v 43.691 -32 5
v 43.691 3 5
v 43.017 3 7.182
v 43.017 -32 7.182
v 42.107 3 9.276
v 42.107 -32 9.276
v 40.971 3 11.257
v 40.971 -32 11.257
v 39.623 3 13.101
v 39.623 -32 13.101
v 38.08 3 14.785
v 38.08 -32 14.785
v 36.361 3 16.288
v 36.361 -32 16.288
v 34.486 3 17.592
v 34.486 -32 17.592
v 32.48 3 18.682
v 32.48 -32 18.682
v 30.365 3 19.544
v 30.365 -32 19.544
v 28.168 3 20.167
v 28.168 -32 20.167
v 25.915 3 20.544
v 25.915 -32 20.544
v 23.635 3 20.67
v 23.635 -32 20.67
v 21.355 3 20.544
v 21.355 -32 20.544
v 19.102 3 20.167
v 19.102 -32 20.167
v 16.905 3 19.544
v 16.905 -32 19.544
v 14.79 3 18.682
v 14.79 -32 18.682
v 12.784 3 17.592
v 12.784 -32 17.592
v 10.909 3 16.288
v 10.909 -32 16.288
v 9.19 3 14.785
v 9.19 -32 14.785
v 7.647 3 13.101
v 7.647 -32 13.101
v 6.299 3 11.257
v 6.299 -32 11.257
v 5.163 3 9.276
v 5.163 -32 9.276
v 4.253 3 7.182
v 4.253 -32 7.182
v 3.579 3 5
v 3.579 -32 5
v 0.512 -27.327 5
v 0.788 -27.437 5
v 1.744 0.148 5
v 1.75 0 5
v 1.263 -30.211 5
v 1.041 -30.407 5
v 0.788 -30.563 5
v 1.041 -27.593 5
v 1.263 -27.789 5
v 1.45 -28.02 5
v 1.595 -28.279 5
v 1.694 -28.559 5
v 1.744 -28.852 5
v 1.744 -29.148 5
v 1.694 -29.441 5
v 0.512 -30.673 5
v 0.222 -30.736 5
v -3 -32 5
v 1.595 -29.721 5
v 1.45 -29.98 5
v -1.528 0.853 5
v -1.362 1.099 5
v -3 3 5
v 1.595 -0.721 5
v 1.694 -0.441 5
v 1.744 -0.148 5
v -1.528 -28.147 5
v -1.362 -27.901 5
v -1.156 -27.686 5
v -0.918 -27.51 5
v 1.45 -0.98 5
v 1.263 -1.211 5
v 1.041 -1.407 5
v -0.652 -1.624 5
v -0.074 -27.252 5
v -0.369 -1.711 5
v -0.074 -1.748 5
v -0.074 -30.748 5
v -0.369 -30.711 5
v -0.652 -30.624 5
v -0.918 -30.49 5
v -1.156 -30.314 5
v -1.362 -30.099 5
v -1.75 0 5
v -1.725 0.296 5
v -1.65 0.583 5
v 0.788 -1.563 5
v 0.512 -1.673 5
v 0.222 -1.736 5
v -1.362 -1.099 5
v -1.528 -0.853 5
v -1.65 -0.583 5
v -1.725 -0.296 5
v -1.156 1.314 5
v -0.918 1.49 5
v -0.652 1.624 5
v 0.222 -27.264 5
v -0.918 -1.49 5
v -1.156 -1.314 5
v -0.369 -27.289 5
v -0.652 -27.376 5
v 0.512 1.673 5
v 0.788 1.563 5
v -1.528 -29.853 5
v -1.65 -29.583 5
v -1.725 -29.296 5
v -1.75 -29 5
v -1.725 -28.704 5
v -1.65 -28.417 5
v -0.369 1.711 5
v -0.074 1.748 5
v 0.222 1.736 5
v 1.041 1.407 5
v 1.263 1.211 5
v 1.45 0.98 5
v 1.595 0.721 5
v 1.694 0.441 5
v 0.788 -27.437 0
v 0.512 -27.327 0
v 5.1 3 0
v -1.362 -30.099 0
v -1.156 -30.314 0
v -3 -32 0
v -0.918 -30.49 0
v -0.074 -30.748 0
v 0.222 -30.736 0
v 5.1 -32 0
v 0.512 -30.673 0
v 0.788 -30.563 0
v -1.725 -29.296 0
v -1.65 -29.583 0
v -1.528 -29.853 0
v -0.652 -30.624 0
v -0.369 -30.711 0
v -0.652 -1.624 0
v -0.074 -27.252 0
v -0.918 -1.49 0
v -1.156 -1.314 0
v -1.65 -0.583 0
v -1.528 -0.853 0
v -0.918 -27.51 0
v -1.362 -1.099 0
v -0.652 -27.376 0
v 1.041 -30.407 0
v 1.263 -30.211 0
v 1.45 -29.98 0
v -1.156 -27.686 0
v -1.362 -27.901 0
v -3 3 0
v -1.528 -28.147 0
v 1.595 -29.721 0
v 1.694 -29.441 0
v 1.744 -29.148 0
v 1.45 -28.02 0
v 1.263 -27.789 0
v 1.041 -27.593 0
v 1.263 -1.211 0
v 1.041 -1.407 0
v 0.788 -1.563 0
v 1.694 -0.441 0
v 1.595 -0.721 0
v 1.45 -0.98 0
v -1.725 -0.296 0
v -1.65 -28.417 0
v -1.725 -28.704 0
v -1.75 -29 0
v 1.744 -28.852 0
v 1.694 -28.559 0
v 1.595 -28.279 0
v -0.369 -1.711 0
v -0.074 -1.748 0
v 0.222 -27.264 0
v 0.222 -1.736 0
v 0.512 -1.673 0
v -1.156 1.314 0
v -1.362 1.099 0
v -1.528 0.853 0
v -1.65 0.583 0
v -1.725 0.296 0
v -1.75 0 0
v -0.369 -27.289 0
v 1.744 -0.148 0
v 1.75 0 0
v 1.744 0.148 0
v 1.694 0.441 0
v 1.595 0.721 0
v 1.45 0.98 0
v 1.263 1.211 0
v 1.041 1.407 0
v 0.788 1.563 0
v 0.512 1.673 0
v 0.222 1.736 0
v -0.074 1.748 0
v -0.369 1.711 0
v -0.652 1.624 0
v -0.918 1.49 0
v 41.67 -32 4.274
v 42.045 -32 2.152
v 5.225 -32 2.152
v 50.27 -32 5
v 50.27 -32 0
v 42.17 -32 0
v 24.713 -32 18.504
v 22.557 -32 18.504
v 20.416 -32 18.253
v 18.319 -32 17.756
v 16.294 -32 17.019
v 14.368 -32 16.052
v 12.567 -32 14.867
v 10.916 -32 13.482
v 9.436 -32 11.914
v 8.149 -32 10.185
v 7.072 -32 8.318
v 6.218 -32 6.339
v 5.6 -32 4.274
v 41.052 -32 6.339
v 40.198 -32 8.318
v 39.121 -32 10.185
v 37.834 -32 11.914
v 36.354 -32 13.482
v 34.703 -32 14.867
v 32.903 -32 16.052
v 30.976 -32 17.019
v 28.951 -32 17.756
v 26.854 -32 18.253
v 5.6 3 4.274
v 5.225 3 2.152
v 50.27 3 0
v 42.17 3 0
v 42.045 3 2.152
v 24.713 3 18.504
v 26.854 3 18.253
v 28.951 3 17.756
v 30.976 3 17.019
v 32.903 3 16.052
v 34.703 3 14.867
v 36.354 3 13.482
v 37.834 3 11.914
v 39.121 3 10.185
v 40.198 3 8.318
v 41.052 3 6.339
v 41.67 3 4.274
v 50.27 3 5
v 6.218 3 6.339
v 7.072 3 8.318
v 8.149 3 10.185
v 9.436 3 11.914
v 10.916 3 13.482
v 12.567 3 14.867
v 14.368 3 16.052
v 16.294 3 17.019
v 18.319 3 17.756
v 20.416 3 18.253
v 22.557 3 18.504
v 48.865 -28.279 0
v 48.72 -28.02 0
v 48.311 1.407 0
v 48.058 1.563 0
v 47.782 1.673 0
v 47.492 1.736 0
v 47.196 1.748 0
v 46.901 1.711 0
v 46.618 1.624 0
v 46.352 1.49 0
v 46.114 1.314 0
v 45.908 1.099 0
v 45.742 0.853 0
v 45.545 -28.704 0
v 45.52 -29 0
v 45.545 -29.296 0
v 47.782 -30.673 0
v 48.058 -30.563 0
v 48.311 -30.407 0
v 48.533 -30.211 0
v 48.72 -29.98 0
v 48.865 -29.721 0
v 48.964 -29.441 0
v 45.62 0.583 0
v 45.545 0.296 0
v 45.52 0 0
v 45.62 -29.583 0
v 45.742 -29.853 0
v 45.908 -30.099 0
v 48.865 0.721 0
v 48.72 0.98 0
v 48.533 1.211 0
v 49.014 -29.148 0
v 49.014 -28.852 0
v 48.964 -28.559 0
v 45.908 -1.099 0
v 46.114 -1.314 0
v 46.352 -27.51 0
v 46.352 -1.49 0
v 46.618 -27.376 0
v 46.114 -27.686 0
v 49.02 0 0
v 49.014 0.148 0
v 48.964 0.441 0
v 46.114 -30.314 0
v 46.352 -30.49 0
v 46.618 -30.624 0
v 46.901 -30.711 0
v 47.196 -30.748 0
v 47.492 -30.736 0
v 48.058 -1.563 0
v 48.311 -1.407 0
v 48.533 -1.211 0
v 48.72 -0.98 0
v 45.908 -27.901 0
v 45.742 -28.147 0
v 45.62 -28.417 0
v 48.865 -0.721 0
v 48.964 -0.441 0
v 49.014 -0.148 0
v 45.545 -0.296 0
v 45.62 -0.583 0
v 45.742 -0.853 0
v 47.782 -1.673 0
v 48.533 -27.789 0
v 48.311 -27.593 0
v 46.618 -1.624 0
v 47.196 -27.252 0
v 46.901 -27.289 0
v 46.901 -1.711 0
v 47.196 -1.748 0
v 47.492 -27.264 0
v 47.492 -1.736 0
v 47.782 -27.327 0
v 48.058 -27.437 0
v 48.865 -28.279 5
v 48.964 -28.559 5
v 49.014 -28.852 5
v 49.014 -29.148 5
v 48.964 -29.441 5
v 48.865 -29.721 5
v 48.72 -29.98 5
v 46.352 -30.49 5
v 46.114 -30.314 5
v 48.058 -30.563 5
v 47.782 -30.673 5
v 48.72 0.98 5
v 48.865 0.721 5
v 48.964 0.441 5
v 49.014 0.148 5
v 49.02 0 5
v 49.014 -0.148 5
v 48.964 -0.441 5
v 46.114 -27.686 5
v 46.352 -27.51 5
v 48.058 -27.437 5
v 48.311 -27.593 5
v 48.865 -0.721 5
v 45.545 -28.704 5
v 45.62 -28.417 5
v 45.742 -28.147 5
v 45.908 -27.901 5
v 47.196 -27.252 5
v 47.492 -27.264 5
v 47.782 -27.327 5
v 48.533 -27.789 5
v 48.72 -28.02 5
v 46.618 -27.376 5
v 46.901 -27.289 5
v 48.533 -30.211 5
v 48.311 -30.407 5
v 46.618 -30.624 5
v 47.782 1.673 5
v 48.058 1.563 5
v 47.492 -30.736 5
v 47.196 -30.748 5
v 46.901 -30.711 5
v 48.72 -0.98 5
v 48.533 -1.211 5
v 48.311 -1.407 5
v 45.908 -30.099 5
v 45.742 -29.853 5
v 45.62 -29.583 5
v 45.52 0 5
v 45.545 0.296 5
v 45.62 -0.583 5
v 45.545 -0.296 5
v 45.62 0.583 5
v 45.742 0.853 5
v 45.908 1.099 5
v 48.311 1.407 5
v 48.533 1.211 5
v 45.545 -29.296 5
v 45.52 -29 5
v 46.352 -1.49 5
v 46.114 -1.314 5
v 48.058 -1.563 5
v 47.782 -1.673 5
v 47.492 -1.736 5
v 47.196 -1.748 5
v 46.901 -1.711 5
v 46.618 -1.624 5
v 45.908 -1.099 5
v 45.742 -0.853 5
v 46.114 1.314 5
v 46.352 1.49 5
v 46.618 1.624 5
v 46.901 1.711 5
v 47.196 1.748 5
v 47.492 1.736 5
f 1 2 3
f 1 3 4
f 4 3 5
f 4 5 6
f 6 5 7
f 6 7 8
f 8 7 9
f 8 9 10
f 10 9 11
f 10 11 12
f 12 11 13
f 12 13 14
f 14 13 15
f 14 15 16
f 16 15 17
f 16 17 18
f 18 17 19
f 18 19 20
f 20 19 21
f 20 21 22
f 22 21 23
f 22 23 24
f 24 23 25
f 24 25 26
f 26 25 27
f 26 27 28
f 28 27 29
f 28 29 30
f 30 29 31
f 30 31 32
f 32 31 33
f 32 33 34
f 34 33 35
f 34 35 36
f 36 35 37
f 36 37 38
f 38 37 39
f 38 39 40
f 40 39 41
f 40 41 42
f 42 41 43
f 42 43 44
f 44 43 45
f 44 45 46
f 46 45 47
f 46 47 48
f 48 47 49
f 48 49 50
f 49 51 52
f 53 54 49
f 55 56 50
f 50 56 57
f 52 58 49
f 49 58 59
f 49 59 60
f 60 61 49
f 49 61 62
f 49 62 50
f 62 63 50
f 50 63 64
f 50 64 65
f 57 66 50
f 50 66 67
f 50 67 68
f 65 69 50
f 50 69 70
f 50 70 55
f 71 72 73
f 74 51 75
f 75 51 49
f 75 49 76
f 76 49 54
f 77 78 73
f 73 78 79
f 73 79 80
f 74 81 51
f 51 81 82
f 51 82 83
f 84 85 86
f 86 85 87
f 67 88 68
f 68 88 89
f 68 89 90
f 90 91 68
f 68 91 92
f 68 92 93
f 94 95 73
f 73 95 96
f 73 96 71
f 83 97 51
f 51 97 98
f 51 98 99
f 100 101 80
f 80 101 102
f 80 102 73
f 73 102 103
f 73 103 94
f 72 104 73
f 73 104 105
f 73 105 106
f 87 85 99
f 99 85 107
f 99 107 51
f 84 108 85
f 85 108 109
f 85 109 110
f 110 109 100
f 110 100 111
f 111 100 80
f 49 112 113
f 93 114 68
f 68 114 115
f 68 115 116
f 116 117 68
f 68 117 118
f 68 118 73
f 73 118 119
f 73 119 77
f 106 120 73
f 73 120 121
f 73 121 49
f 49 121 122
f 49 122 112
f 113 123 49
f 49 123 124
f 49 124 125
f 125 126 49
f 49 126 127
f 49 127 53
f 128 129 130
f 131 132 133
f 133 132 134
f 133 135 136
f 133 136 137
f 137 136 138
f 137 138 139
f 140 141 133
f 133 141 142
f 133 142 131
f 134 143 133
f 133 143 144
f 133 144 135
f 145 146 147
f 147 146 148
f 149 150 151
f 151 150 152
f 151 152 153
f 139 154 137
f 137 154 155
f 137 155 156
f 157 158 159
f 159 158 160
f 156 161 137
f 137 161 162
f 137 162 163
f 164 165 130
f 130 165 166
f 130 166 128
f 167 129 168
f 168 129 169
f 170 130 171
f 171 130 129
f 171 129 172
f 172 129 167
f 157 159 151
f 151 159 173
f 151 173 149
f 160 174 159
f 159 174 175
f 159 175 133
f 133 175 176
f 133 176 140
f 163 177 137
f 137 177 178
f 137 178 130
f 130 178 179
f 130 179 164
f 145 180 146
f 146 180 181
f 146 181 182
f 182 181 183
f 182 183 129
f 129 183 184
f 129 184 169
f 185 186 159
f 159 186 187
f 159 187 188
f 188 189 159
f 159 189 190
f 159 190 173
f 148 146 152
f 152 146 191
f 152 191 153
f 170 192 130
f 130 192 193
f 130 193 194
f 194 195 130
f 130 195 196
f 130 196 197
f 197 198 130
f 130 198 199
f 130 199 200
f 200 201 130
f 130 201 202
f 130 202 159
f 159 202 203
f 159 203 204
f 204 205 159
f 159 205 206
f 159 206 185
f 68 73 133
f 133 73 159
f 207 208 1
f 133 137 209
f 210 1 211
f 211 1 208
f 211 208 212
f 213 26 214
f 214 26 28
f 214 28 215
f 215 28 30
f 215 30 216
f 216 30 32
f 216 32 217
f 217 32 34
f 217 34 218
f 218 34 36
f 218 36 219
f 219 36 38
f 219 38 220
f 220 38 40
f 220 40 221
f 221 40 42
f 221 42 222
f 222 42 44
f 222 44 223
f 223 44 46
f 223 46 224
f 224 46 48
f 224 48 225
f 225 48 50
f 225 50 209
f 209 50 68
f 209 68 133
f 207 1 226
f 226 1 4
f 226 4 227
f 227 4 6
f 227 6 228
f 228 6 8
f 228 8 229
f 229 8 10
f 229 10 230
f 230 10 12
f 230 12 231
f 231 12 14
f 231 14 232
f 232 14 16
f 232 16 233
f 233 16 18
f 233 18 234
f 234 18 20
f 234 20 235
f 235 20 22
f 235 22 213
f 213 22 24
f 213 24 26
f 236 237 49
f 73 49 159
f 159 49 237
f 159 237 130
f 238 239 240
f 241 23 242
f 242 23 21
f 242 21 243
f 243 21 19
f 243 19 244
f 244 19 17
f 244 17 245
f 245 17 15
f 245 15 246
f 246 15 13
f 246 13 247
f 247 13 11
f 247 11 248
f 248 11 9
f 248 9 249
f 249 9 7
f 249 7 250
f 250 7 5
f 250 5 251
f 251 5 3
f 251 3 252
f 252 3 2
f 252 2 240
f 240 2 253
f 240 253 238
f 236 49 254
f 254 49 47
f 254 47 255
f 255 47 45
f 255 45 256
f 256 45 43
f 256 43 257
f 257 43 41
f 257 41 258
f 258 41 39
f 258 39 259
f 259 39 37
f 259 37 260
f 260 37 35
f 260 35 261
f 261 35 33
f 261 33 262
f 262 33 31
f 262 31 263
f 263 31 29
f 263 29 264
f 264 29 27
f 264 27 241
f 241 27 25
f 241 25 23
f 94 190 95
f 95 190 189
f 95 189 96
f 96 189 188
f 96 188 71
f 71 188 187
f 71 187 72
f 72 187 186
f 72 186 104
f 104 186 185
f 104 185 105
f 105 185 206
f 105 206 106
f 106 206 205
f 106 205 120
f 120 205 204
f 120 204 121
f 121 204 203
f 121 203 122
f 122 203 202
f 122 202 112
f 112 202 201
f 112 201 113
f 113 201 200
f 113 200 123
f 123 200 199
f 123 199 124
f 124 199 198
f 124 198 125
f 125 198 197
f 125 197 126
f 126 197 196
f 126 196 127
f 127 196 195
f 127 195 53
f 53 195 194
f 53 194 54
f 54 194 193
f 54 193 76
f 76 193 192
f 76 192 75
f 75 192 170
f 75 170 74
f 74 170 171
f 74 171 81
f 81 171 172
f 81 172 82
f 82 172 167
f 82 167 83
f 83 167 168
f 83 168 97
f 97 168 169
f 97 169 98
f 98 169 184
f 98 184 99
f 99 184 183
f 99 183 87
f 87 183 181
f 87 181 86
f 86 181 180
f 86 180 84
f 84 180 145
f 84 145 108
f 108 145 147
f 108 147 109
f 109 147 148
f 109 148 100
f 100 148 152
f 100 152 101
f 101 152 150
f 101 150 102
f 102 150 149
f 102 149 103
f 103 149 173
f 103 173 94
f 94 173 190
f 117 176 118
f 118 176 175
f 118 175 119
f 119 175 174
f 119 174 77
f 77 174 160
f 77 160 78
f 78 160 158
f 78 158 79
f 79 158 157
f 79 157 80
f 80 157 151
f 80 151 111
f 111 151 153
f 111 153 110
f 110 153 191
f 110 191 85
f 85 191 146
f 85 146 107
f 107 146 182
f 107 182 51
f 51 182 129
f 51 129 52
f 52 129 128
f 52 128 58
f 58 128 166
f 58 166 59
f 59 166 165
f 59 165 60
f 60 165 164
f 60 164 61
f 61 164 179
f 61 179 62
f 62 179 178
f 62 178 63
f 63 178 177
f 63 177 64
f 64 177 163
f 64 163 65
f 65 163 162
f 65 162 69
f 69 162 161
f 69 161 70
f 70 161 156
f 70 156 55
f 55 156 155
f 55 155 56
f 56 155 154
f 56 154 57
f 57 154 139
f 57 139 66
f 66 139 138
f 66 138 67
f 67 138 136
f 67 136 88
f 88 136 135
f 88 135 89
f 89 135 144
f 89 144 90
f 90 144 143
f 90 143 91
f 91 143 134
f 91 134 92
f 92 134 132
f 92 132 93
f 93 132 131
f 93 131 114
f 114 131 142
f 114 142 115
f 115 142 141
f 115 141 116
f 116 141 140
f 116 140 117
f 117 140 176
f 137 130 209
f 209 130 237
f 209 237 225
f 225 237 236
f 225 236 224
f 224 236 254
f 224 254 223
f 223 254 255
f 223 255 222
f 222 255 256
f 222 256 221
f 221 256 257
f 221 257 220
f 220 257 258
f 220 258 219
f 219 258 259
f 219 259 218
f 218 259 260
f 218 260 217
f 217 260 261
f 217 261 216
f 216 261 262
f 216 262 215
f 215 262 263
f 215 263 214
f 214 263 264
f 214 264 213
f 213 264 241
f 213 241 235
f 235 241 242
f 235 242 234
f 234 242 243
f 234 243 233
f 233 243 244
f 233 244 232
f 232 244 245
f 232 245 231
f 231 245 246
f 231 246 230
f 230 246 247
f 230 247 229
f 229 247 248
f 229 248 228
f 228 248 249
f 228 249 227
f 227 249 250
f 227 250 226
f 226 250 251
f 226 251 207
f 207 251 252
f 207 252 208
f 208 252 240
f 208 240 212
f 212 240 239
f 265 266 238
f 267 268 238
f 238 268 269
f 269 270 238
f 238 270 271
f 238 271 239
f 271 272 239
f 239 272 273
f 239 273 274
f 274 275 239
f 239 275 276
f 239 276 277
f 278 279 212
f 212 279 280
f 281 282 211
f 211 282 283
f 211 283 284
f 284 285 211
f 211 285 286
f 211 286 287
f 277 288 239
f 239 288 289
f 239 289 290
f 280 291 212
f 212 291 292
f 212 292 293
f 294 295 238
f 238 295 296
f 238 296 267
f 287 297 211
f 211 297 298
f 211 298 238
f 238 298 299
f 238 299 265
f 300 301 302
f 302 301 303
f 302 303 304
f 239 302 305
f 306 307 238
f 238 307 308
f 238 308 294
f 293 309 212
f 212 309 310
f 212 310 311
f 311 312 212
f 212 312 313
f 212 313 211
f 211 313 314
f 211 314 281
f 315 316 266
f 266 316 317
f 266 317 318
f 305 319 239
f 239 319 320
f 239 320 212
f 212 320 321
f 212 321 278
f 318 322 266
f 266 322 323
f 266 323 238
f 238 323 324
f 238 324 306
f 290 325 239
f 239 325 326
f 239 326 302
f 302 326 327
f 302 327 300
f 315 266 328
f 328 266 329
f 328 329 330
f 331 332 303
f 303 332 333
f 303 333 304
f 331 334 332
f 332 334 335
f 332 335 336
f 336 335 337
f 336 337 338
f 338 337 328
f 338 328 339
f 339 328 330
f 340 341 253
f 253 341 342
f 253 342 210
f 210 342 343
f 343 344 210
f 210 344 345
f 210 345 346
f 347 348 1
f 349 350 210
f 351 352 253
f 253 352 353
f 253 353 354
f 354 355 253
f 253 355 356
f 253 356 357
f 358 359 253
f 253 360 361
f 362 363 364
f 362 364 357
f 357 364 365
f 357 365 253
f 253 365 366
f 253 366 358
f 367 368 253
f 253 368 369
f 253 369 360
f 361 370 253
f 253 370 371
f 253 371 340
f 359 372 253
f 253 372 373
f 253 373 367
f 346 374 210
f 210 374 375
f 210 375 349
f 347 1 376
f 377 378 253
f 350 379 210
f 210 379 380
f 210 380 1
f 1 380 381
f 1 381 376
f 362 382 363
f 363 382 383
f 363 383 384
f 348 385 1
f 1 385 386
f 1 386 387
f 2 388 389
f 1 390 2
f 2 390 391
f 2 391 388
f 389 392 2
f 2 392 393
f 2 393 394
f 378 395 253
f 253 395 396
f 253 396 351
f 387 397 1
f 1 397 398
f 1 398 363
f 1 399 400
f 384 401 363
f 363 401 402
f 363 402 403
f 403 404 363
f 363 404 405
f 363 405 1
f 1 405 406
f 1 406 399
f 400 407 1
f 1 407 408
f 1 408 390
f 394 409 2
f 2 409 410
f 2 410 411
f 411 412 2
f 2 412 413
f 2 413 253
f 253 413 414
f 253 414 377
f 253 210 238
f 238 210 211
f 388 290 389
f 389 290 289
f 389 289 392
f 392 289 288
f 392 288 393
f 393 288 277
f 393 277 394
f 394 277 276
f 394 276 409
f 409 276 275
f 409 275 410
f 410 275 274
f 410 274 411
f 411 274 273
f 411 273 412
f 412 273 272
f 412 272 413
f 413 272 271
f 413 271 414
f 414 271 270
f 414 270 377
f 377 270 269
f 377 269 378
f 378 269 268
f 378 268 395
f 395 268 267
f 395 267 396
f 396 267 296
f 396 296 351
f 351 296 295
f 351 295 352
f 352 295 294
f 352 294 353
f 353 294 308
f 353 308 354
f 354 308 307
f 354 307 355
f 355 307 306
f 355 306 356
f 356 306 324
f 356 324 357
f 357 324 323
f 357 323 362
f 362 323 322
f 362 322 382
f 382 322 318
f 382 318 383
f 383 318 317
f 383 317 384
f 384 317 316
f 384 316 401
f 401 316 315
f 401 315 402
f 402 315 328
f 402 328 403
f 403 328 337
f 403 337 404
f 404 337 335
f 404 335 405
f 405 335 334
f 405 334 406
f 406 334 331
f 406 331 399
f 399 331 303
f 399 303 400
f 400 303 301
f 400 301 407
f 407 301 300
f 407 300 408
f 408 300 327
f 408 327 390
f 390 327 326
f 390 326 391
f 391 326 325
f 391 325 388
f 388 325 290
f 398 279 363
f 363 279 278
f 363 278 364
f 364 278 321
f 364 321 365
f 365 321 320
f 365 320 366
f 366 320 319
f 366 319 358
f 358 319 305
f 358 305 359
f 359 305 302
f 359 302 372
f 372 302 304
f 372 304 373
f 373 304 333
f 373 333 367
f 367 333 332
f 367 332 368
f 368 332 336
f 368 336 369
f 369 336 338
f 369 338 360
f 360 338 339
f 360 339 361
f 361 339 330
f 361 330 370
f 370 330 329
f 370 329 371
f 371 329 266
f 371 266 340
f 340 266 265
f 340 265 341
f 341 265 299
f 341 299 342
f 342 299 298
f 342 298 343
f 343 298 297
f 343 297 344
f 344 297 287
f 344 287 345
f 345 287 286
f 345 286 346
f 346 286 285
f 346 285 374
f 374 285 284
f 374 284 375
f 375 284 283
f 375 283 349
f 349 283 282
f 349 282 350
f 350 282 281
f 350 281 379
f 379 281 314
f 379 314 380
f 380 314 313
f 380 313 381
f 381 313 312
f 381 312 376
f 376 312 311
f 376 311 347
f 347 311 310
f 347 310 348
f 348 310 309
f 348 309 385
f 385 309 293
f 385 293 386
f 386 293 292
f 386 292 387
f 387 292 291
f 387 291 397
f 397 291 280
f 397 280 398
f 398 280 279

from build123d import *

# Parameters (mm, degrees)
SKETCH1_R             = 1.75
BOSS_EXTRUDE1_DEPTH   = 5
BOSS_EXTRUDE1_2_DEPTH = 5
SKETCH1_2_R           = 1.75
BOSS_EXTRUDE2_DEPTH   = 5
BOSS_EXTRUDE3_DEPTH   = 35


with BuildPart() as part:
    # Sketch1 → Boss-Extrude1 (new body)
    with BuildSketch(Plane.XY):
        Polygon((-3, 3), (5.1, 3), (5.1, -32), (-3, -32), (-3, -26), align=None)
        Circle(SKETCH1_R, mode=Mode.SUBTRACT)
        with Locations(Location((0, -29, 0), (0, 0, 180))):
            Circle(SKETCH1_R, mode=Mode.SUBTRACT)
    extrude(amount=BOSS_EXTRUDE1_DEPTH)



with BuildPart() as body_2:
    # Sketch1 → Boss-Extrude1 2 (new body)
    with BuildSketch(Plane.XY):
        Polygon((50.27, 3), (42.17, 3), (42.17, -32), (50.27, -32), (50.27, -26), align=None)
        with Locations((47.27, 0)):
            Circle(SKETCH1_R, mode=Mode.SUBTRACT)
        with Locations(Location((47.27, -29, 0), (0, 0, 180))):
            Circle(SKETCH1_R, mode=Mode.SUBTRACT)
    extrude(amount=BOSS_EXTRUDE1_2_DEPTH)


with BuildPart() as part_1:
    add(part.part)

    add(body_2.part)  # Boss-Extrude2 merges body 2
    # Sketch1<2> → Boss-Extrude2 (add)
    # profile 1 of 2: a face of its own
    with BuildSketch(Plane.XY):
        Polygon((-3, 3), (5.1, 3), (5.1, -32), (-3, -32), (-3, -26), align=None)
        Circle(SKETCH1_2_R, mode=Mode.SUBTRACT)
        with Locations(Location((0, -29, 0), (0, 0, 180))):
            Circle(SKETCH1_2_R, mode=Mode.SUBTRACT)
    # profile 2 of 2: a face of its own
    with BuildSketch(Plane.XY):
        Polygon((50.27, 3), (42.17, 3), (42.17, -32), (50.27, -32), (50.27, -26), align=None)
        with Locations((47.27, 0)):
            Circle(SKETCH1_2_R, mode=Mode.SUBTRACT)
        with Locations(Location((47.27, -29, 0), (0, 0, 180))):
            Circle(SKETCH1_2_R, mode=Mode.SUBTRACT)
    extrude(amount=BOSS_EXTRUDE2_DEPTH)

    # Sketch2 → Boss-Extrude3 (add)
    with BuildSketch(Plane(origin=(0, 3, 0), x_dir=(1, 0, 0), z_dir=(0, 1, 0))):
        with BuildLine():
            Line((42.17, 0), (44.305, 0))
            ThreePointArc((44.305, 0), (23.635, -20.67), (2.965, 0))
            Line((2.965, 0), (5.1, 0))
            ThreePointArc((5.1, 0), (23.635, -18.535), (42.17, 0))
        make_face()
    extrude(amount=-BOSS_EXTRUDE3_DEPTH)


solid = part_1.part
